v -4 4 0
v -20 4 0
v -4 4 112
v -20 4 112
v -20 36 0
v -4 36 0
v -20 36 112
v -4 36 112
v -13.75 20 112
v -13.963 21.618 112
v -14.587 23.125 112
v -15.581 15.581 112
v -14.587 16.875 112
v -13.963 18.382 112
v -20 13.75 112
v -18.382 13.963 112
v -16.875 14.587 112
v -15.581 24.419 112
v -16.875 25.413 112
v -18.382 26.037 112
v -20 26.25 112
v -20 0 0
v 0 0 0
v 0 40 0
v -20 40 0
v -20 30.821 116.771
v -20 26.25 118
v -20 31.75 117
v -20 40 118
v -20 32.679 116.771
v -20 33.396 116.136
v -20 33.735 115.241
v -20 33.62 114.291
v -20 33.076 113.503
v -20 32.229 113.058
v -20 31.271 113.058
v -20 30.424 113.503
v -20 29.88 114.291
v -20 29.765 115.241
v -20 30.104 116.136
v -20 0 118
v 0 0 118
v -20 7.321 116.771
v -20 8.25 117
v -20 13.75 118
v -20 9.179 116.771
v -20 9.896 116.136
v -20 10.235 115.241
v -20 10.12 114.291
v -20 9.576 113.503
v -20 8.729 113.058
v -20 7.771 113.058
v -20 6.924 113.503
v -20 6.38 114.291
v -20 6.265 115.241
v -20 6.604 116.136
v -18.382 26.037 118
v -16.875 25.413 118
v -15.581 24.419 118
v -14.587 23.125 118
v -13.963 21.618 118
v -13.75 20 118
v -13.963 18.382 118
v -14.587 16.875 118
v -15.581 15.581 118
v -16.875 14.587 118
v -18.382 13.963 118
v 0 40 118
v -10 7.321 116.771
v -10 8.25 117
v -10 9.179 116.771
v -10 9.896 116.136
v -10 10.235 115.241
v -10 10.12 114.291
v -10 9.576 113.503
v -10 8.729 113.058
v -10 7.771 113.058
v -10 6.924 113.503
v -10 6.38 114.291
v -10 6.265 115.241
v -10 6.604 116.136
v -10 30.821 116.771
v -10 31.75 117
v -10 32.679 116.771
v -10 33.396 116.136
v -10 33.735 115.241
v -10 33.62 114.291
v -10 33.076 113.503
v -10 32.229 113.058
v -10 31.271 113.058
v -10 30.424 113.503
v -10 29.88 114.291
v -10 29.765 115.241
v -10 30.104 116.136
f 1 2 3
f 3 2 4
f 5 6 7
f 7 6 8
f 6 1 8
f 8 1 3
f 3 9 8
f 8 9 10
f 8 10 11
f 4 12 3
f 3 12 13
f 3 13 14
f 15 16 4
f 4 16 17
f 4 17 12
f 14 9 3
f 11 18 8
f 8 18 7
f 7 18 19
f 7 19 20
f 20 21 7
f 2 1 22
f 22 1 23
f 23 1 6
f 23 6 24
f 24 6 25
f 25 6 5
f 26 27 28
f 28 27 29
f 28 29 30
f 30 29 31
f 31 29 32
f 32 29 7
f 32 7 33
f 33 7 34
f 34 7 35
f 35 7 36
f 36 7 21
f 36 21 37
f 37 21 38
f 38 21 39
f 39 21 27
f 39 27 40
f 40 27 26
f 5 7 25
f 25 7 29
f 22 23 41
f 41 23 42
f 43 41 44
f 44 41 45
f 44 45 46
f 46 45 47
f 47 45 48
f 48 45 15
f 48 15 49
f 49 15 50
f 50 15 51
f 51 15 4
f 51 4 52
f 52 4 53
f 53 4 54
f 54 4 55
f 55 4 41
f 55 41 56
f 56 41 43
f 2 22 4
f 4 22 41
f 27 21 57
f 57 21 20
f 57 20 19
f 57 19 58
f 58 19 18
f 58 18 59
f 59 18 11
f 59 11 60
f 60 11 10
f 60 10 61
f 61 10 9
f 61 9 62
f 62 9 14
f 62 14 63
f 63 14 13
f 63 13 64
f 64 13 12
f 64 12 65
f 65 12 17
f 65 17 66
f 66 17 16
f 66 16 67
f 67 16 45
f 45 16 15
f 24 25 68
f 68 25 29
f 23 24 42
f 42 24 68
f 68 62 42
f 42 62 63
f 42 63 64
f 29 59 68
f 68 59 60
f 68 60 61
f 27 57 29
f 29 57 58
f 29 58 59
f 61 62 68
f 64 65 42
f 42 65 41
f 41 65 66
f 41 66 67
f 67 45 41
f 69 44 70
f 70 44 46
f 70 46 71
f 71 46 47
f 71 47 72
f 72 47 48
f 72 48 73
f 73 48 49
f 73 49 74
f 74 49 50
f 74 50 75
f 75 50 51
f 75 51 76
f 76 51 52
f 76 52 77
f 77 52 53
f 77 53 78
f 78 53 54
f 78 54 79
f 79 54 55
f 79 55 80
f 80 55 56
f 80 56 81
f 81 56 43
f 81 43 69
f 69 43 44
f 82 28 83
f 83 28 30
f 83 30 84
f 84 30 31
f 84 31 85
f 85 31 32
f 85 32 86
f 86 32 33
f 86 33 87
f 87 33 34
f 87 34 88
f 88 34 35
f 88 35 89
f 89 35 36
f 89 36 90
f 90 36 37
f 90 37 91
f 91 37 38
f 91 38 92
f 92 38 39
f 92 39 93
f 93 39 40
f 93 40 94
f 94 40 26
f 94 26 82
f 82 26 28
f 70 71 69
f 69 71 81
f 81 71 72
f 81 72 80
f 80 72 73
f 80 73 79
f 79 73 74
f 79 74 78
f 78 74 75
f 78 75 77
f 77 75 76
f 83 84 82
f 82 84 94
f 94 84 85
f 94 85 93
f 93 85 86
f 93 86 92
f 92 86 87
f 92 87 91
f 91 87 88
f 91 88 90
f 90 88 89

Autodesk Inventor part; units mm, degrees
ref_plane "YZ Plane" through (0, 0, 0) normal (1, 0, 0) x (0, 1, 0)
ref_plane "XZ Plane" through (0, 0, 0) normal (0, 1, 0) x (-1, 0, 0)
ref_plane "XY Plane" through (0, 0, 0) normal (0, 0, 1) x (1, 0, 0)
sketch "스케치1" plane through (0, 0, 0) normal (0, 0, 1) x (1, 0, 0)
  line L0 (0, 0) -> (-20, 0)
  line L1 (-20, 0) -> (-20, 40)
  line L2 (-20, 40) -> (0, 40)
  line L3 (0, 40) -> (0, 0)
  circle A0 centre (-20, 20) radius 6.25
  point P0 (-20, 26.25)
  point P1 (-20, 13.75)
  dimension "d0" = 40
  dimension "d1" = 20
  dimension "d2" = 20
  dimension "d3" = 12.5
extrude "돌출1" add sketch "스케치1" along normal blind 118 contours L0 L1 A0 L2 L3
sketch "스케치2" plane through (0, 0, 118) normal (0, 0, 1) x (1, 0, 0)
  line L0 (-20, 40) -> (-20, 26.25) projected
  line L1 (-20, 36) -> (-4, 36)
  line L2 (-4, 36) -> (-4, 4)
  line L3 (-4, 4) -> (-20, 4)
  line L4 (-20, 13.75) -> (-20, 0) projected
  line L5 (0, 40) -> (-20, 40) projected
  point P0 (0, 0)
  dimension "d6" = 16
  dimension "d7" = 32
  dimension "d8" = 4
sketch "스케치3" plane through (0, 0, 118) normal (0, 0, 1) x (1, 0, 0)
  line L0 (-20, 36) -> (-4, 36) projected
  line L1 (-4, 36) -> (-4, 4) projected
  line L2 (-4, 4) -> (-20, 4) projected
  line L3 (-20, 13.75) -> (-20, 0) projected
  line L4 (-20, 40) -> (-20, 26.25) projected
  point P0 (0, 0)
sketch "스케치4" plane through (0, 0, 118) normal (0, 0, 1) x (1, 0, 0)
  line L0 (-20, 40) -> (-20, 26.25) projected
  line L1 (-20, 35.8924) -> (-20, 26.25)
  line L2 (-20, 13.75) -> (-20, 0) projected
  line L3 (-20, 4.1853) -> (-20, 13.75)
  point P0 (0, 0)
sketch "스케치5" plane through (0, 0, 118) normal (0, 0, 1) x (1, 0, 0)
  line L0 (-20, 36) -> (-4, 36) projected
  line L1 (-4, 36) -> (-4, 4) projected
  line L2 (-4, 4) -> (-20, 4) projected
  line L3 (-20, 13.75) -> (-20, 0) projected
  line L4 (-20, 40) -> (-20, 26.25) projected
  point P0 (0, 0)
  point P1 (-20, 4.1853)
sketch "스케치6" plane through (0, 0, 0) normal (0, 0, -1) x (-1, 0, 0)
  line L0 (20, 13.75) -> (20, 0) projected
  line L1 (20, 4) -> (4, 4)
  line L2 (4, 4) -> (4, 36)
  line L3 (4, 36) -> (20, 36)
  line L4 (20, 36) -> (20, 4)
  line L5 (20, 0) -> (0, 0) projected
  arc A0 (20, 26.25) -> (20, 13.75) centre (20, 20) ccw projected
  dimension "d9" = 16
  dimension "d10" = 32
  dimension "d11" = 4
extrude "돌출2" cut sketch "스케치6" against normal blind 112 contours L0 L1 L2 L3 L4 A0
sketch "스케치8" plane through (-20, 26.25, 118) normal (-1, 0, 0) x (0, 0, 1)
  circle A0 centre (-3, 5.5) radius 2
  circle A1 centre (-3, -18) radius 2
  line L0 (0, -12.5) -> (0, -26.25) projected
  line L1 (-6, -12.5) -> (0, -12.5) projected
  line L2 (-6, 0) -> (0, 0) projected
  line L3 (0, 13.75) -> (0, 0) projected
  point P0 (-118, -26.25)
  dimension "d22" = 4
  dimension "d23" = 4
  dimension "d24" = 3
  dimension "d25" = 5.5
  dimension "d26" = 5.5
  dimension "d27" = 3
extrude "돌출4" cut sketch "스케치8" against normal blind 10
properties part number "hard_support_wm"
